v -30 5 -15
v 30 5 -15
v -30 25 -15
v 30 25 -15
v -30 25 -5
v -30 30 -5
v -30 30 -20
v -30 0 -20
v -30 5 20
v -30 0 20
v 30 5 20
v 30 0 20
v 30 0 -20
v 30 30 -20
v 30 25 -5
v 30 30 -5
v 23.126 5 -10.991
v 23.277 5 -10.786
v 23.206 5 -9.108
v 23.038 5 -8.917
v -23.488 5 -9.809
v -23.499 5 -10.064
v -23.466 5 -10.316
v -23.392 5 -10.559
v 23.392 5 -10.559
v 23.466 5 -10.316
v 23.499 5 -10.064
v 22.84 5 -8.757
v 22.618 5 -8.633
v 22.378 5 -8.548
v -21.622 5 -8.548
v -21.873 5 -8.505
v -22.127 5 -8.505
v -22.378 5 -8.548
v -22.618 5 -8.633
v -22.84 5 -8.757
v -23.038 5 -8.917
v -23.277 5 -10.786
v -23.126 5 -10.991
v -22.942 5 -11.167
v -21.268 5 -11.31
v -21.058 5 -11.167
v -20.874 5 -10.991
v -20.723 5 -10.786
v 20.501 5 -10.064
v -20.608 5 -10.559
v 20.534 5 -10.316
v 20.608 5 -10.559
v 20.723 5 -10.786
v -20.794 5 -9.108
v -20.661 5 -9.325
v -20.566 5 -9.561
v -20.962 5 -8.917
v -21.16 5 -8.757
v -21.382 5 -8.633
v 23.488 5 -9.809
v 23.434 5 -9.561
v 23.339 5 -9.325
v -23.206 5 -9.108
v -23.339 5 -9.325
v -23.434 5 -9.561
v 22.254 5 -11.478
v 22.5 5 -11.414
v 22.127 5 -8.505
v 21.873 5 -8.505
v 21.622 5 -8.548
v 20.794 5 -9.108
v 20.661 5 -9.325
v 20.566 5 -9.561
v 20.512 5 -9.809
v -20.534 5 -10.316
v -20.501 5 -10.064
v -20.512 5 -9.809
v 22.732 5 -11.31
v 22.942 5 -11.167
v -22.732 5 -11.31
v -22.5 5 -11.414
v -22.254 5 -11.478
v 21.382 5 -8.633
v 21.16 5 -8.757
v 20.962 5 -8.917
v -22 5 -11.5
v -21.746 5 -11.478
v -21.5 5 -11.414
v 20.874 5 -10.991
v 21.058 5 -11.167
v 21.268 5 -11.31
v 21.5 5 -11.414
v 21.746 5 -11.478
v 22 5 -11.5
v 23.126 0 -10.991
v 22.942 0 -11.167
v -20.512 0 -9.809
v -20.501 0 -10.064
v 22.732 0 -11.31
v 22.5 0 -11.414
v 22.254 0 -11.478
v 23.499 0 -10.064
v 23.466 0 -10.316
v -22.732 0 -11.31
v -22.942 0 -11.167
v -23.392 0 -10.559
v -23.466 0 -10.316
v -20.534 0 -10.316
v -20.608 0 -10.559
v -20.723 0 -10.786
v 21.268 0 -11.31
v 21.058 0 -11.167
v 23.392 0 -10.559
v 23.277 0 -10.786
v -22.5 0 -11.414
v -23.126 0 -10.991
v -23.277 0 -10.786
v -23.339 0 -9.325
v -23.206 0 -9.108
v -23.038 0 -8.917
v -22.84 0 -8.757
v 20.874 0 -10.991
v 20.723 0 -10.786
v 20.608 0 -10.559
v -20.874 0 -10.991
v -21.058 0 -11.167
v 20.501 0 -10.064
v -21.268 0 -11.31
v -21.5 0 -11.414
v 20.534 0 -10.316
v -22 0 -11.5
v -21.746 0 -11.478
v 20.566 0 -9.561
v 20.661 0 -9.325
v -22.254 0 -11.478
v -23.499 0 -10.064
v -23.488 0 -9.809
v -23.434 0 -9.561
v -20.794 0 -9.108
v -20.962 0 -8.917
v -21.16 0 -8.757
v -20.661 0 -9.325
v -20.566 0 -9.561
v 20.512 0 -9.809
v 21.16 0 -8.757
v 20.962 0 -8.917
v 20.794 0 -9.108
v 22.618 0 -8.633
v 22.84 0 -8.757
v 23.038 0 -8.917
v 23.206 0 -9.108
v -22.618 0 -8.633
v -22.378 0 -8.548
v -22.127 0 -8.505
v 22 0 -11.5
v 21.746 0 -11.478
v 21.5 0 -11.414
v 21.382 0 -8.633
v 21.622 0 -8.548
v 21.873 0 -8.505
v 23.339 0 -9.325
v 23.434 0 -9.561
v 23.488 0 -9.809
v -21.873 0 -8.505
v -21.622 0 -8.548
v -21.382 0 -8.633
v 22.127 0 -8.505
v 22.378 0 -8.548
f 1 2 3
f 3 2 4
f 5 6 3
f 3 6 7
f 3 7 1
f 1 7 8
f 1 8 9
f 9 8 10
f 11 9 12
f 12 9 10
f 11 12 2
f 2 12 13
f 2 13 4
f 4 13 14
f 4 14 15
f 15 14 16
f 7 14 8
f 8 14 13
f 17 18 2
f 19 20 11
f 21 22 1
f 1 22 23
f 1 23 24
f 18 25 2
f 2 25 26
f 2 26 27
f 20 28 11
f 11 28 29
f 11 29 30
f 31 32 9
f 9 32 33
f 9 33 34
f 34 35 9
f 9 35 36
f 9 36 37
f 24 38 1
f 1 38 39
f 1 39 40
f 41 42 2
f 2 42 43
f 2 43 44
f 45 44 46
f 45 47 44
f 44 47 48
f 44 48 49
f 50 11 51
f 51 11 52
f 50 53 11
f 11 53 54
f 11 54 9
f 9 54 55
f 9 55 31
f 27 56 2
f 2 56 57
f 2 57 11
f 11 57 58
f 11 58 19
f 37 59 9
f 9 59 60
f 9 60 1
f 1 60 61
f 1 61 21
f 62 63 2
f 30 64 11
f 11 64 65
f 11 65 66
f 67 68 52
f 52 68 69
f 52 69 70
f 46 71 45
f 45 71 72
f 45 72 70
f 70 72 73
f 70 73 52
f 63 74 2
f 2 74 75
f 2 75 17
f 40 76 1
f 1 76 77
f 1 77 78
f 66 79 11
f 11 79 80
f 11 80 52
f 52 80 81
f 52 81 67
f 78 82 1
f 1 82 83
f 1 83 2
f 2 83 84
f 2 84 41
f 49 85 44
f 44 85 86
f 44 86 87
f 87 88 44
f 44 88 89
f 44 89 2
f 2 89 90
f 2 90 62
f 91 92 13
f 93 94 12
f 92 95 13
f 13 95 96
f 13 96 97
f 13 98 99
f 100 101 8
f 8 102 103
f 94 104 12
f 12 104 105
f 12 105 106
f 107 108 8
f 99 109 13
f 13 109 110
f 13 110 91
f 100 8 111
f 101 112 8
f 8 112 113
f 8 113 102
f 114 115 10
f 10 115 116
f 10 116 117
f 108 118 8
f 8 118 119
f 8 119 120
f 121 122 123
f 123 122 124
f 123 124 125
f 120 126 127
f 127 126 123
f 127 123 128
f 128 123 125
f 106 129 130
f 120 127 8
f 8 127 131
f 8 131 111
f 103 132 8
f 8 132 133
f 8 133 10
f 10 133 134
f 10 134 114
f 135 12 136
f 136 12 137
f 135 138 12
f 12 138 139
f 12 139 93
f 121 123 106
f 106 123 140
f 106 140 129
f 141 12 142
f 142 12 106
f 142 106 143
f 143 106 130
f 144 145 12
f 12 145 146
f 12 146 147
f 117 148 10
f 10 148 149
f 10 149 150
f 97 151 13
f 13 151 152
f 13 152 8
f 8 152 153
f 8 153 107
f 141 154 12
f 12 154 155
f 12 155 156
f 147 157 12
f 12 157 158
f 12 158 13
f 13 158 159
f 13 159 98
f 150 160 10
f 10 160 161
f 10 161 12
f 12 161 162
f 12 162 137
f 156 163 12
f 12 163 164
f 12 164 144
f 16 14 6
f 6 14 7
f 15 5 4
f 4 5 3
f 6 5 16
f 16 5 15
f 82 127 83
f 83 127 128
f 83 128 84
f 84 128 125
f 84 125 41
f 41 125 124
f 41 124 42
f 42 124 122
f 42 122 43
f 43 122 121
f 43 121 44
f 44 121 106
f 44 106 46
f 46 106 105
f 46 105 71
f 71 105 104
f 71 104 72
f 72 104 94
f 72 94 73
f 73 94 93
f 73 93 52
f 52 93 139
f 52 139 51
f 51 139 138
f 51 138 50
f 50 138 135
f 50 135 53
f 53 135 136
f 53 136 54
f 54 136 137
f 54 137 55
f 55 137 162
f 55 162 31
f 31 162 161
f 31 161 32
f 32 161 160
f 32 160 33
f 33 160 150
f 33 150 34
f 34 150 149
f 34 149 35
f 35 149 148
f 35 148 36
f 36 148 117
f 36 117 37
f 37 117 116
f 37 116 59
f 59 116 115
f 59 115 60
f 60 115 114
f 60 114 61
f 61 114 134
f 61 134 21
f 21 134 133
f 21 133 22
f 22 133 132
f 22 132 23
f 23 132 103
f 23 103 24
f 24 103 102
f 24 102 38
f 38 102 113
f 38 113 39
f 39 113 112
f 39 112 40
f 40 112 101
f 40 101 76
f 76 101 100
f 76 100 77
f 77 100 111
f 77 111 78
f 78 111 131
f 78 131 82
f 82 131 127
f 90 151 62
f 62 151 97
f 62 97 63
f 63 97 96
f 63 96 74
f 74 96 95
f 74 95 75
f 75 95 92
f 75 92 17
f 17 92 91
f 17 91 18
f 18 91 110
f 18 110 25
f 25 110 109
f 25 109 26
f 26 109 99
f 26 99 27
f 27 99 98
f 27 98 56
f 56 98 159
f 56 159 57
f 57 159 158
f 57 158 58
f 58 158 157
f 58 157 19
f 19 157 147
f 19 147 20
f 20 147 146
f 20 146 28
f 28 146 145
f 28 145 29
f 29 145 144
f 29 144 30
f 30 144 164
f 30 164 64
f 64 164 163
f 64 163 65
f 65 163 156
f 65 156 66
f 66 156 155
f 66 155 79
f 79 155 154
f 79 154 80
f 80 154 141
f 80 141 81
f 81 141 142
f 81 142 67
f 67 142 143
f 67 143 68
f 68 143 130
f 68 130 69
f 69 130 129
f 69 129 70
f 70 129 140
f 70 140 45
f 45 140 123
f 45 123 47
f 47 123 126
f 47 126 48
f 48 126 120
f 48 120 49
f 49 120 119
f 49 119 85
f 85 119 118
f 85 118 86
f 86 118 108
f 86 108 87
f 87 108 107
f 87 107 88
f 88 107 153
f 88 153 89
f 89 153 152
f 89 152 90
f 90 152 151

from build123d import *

# Parameters (mm, degrees)
SKETCH_1_W          = 60
SKETCH_1_H          = 40
EXTRUDE_1_DEPTH     = 5
SKETCH_3_W          = 60
SKETCH_3_H          = 5
EXTRUDE_2_DEPTH     = 25
SKETCH_4_W          = 60
SKETCH_4_H          = 5
EXTRUDE_3_DEPTH     = 10
SKETCH_5_R          = 1.5
CUT_EXTRUDE_1_DEPTH = 5


with BuildPart() as part:
    # Эскиз1 → Бобышка-Вытянуть1 (new body)
    with BuildSketch(Plane(origin=(0, 0, 0), x_dir=(1, 0, 0), z_dir=(0, 1, 0))):
        Rectangle(SKETCH_1_W, SKETCH_1_H)
    extrude(amount=EXTRUDE_1_DEPTH)

    # Эскиз3 → Бобышка-Вытянуть2 (add)
    with BuildSketch(Plane(origin=(0, 5, 0), x_dir=(1, 0, 0), z_dir=(0, 1, 0))):
        with Locations((0, 17.5)):
            Rectangle(SKETCH_3_W, SKETCH_3_H)
    extrude(amount=EXTRUDE_2_DEPTH)

    # Эскиз4 → Бобышка-Вытянуть3 (add)
    with BuildSketch(Plane.XY.offset(-15)):
        with Locations((0, 27.5)):
            Rectangle(SKETCH_4_W, SKETCH_4_H)
    extrude(amount=EXTRUDE_3_DEPTH)

    # Эскиз5 → Вырез-Вытянуть1 (cut)
    with BuildSketch(Plane.XZ):
        with Locations(Location((22, -10, 0), (0, 0, 270))):
            Circle(SKETCH_5_R)
        with Locations(Location((-22, -10, 0), (0, 0, 270))):
            Circle(SKETCH_5_R)
    extrude(amount=-CUT_EXTRUDE_1_DEPTH, mode=Mode.SUBTRACT)


solid = part.part
